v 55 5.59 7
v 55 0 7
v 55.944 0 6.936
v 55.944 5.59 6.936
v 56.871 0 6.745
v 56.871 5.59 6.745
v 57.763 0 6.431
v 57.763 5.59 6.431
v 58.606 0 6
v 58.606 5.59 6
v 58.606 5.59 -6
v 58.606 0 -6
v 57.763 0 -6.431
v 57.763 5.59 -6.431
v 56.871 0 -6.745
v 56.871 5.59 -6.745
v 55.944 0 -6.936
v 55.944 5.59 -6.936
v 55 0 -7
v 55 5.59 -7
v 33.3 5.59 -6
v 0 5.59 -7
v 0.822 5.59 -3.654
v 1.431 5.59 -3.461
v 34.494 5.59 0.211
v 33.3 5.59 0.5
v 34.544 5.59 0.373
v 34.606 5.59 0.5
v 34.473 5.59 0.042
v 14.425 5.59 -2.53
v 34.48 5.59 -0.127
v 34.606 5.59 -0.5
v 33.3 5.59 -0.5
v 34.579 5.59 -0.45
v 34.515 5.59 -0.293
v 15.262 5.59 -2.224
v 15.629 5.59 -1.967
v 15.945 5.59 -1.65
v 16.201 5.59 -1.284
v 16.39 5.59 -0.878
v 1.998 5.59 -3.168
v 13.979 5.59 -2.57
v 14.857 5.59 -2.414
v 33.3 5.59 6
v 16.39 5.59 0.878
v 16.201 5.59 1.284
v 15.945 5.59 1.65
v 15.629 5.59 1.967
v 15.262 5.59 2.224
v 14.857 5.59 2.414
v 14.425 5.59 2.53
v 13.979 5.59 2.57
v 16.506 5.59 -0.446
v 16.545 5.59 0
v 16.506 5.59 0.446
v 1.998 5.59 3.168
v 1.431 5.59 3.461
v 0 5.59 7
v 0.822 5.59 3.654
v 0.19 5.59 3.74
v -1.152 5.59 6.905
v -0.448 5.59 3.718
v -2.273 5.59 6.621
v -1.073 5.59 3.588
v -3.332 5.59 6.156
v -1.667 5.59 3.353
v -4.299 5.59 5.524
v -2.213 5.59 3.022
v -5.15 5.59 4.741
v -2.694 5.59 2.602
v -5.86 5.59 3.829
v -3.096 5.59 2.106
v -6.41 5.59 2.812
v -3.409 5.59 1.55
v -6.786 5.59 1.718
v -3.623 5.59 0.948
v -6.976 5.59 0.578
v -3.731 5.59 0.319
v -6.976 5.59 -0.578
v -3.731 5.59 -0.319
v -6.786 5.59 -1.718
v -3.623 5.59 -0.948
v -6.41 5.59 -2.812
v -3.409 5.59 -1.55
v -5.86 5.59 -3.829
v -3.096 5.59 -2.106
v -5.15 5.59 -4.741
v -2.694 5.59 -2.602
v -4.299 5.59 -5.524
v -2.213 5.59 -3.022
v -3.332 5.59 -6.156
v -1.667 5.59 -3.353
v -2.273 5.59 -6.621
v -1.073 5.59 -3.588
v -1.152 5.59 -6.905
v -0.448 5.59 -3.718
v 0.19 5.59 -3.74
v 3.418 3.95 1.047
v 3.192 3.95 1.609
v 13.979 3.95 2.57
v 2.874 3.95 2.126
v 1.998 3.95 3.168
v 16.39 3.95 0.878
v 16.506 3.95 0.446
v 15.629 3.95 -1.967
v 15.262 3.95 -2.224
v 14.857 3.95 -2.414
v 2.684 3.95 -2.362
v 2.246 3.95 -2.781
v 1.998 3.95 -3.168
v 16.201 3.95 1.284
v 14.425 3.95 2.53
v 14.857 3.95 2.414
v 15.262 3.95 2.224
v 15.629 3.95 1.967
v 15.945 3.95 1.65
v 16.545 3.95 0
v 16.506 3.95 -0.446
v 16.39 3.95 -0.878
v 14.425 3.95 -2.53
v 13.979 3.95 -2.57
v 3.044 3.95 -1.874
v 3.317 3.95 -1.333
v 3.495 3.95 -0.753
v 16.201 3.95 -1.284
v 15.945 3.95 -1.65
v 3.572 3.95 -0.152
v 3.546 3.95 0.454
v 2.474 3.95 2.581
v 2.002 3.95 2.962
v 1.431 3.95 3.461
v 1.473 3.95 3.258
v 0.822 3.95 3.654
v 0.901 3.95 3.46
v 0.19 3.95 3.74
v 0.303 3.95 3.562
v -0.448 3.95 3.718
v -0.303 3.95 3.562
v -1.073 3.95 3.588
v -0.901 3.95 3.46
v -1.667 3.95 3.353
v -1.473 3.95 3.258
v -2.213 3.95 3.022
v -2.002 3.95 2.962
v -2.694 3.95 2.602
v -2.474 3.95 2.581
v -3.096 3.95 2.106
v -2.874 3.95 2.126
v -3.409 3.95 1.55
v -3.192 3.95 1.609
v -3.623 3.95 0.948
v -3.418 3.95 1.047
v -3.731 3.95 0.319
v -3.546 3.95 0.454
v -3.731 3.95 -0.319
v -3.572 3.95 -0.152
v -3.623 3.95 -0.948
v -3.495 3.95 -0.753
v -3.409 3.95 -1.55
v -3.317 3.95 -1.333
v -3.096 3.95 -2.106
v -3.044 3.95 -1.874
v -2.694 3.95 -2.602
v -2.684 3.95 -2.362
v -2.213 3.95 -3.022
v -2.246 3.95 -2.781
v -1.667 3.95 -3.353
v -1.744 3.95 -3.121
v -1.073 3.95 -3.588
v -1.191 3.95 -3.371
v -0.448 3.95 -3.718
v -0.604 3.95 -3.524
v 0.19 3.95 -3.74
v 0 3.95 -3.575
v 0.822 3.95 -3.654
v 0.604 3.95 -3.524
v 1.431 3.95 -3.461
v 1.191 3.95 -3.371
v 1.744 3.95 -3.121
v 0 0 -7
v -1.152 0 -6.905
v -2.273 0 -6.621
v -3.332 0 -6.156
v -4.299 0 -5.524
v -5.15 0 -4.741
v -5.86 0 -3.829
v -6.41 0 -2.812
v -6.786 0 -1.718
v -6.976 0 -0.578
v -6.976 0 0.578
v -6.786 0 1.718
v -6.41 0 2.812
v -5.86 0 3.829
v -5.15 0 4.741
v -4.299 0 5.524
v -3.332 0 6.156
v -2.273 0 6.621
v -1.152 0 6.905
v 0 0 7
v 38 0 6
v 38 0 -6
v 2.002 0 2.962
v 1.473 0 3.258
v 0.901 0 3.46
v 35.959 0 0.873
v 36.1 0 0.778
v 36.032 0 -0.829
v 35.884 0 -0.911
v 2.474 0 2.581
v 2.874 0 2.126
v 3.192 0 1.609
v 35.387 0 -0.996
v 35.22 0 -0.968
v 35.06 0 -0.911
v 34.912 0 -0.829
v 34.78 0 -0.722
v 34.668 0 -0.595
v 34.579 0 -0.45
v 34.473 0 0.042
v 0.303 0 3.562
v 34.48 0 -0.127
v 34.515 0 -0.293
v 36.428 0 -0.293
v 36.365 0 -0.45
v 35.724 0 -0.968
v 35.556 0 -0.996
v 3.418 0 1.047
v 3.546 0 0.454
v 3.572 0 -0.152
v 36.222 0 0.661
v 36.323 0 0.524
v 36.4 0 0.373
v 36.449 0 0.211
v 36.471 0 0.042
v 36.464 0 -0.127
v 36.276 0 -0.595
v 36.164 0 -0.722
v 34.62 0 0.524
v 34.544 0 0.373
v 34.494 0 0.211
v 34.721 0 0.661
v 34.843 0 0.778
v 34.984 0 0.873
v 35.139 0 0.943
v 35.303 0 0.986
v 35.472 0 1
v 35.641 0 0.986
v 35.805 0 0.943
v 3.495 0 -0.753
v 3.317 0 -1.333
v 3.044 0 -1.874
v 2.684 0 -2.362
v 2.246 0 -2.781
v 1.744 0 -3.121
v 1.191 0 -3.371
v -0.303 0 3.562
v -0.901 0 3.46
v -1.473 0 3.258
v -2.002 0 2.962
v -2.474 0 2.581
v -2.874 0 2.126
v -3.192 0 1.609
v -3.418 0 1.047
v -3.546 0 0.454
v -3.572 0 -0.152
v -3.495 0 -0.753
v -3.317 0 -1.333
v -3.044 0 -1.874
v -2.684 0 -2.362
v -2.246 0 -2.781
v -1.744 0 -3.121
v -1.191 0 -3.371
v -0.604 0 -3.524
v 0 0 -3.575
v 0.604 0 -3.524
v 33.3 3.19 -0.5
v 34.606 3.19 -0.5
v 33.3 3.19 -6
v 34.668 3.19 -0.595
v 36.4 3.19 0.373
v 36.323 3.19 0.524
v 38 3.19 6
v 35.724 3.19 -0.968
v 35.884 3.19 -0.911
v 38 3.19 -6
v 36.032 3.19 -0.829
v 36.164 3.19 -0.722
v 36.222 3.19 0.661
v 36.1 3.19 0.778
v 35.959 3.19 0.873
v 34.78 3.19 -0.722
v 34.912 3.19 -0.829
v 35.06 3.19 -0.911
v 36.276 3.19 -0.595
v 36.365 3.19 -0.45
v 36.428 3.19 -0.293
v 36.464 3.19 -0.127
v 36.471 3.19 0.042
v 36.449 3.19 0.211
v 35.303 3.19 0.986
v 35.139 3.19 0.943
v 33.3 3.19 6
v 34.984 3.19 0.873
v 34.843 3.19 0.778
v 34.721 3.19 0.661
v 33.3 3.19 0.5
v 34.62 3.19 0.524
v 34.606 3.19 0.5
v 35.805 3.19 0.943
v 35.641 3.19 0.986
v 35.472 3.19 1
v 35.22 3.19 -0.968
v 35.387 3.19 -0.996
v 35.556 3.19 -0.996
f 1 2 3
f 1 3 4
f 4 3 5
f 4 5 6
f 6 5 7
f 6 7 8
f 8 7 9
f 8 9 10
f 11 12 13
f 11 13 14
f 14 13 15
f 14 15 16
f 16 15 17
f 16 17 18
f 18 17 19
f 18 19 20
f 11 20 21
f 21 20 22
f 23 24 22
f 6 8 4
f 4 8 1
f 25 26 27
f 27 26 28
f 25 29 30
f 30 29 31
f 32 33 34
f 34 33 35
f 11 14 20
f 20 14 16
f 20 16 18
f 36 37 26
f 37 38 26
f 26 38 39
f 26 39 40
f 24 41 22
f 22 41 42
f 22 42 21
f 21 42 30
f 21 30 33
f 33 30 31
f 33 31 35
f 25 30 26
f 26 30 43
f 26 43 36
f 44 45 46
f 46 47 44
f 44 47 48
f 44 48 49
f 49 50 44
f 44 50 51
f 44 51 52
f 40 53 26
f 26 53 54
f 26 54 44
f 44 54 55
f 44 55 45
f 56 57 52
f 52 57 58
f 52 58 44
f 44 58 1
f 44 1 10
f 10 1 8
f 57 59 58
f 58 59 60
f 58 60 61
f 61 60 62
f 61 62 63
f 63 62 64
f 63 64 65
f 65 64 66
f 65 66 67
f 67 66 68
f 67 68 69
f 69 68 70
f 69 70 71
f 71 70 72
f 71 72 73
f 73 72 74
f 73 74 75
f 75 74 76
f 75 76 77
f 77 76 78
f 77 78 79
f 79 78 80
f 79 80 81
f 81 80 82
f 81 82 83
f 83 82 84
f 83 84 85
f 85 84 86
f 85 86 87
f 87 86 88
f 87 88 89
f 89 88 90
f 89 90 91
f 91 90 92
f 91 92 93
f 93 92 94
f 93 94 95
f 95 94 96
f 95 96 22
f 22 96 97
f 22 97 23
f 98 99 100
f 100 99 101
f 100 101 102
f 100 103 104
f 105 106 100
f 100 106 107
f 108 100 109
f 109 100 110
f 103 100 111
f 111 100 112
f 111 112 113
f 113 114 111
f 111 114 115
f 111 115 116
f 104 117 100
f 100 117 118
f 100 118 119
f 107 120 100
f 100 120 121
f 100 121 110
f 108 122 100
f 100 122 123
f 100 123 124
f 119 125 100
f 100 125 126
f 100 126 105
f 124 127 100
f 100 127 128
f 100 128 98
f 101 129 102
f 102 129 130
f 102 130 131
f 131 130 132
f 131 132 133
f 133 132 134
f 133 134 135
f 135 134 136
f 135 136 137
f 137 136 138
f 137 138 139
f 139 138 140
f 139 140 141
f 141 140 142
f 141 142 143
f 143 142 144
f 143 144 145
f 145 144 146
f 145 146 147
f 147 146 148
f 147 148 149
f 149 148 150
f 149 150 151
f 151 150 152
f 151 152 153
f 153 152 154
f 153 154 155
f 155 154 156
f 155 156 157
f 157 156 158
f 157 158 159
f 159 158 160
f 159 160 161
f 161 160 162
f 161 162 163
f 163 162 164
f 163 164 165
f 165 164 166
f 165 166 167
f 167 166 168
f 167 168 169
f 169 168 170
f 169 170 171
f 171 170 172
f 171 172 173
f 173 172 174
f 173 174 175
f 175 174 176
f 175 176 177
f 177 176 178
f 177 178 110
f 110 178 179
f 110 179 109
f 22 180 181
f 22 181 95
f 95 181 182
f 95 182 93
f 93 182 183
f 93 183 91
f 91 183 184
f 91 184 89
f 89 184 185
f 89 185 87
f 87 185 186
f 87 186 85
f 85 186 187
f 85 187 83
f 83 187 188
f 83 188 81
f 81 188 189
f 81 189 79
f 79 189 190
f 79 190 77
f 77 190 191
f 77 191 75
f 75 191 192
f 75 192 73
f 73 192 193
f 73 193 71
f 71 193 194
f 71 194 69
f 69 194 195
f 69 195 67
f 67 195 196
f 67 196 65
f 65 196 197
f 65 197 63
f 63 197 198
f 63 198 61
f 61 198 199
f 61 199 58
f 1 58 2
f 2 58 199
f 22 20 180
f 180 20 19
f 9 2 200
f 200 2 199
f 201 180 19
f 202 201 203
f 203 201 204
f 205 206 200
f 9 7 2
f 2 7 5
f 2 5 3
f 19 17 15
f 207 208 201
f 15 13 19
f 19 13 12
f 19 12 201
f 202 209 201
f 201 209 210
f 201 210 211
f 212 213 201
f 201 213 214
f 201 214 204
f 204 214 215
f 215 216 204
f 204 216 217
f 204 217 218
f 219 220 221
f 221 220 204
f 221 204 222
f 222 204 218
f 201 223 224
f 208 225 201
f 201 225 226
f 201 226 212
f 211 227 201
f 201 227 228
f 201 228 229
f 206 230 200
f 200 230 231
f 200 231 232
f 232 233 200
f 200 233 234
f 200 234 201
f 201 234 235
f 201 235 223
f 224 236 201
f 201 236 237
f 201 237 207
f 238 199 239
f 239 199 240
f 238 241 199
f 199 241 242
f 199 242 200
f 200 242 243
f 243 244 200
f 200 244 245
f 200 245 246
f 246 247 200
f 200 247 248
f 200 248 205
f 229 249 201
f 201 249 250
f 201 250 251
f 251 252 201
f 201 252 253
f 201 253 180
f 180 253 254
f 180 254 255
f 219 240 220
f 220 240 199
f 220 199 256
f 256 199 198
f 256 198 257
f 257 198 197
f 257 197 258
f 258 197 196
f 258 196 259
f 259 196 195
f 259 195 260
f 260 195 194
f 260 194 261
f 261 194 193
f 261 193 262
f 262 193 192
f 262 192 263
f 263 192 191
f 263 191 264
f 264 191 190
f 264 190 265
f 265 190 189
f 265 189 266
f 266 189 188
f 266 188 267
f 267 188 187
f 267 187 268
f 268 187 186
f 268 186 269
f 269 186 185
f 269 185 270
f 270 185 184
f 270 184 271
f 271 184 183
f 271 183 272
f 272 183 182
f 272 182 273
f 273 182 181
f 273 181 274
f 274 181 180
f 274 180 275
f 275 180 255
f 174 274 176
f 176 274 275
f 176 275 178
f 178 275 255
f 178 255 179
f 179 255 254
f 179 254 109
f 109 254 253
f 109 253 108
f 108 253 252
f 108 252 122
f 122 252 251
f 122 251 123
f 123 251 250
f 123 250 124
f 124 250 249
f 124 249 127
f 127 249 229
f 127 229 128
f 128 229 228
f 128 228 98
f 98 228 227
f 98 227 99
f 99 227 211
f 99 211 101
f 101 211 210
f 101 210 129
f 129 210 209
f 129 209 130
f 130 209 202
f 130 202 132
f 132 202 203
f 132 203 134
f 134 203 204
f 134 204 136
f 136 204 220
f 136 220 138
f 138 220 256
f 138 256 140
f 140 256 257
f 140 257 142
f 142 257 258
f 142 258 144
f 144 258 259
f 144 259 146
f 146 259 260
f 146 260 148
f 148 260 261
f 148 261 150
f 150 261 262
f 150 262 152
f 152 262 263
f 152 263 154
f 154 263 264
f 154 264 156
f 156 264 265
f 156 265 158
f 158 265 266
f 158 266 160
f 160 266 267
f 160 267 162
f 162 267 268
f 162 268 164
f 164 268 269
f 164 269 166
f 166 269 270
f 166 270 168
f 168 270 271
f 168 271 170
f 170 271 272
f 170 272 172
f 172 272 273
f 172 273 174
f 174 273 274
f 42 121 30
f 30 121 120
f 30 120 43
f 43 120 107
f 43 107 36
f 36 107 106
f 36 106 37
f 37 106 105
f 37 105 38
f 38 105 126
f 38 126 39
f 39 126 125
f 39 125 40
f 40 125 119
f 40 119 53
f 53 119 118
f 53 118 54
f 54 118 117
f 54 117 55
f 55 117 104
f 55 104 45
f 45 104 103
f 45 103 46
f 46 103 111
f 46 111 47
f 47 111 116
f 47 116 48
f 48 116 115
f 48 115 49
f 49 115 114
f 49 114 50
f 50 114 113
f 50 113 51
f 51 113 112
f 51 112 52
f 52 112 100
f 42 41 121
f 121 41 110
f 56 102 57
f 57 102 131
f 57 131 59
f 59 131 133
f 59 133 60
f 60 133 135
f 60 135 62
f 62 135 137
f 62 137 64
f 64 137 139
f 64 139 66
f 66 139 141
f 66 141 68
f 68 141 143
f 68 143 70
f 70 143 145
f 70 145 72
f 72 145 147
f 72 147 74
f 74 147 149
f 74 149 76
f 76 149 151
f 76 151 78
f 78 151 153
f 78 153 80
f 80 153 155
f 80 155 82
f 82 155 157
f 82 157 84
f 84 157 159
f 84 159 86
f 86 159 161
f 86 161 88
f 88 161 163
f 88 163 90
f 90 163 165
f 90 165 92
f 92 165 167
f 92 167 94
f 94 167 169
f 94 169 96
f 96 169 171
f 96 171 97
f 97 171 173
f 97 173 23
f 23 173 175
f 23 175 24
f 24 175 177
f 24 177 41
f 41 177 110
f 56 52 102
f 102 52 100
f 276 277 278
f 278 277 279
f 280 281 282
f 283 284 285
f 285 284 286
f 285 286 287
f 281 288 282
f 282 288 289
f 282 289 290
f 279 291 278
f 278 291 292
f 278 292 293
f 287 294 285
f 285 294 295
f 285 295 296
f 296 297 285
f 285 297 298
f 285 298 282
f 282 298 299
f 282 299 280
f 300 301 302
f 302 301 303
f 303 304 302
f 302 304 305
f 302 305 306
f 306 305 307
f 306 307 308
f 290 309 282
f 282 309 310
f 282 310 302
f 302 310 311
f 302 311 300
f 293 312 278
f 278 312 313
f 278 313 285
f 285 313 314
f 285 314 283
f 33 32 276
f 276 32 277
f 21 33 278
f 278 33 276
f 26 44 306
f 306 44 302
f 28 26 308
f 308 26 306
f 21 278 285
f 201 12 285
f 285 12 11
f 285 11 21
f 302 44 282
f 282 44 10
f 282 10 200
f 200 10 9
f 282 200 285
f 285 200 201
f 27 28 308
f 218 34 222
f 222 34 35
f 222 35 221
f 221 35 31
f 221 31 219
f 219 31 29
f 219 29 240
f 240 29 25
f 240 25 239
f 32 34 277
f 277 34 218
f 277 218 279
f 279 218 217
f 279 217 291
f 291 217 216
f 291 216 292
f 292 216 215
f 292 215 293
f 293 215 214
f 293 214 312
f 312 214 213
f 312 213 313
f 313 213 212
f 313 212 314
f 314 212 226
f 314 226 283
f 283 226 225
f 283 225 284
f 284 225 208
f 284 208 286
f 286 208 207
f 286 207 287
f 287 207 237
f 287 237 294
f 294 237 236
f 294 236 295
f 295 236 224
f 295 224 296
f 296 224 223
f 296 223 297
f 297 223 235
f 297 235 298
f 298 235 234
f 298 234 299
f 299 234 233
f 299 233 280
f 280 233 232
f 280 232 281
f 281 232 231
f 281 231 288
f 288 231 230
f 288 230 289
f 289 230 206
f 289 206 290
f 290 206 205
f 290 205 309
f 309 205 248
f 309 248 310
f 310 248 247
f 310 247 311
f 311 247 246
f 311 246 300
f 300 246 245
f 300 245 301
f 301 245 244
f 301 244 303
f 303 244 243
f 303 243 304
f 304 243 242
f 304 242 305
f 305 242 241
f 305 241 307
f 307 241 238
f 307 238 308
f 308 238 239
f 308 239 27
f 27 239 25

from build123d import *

# Parameters (mm, degrees)
BOSS_EXTRUDE1_DEPTH = 3.95
SKETCH2_R           = 3.575
CUT_EXTRUDE1_DEPTH  = 3.95
BOSS_EXTRUDE2_DEPTH = 1.64
SKETCH4_R           = 3.25
CUT_EXTRUDE2_DEPTH  = 63.643819328
CAVITY1_OUTLINE_R   = 3.25
CAVITY1_DEPTH       = 5.59
CAVITY1_START       = 3.19
CAVITY1_2_DEPTH     = 2.4
CUT_EXTRUDE4_DEPTH  = 63.643819328
CUT_EXTRUDE5_START  = -10
SKETCH6_R           = 1
CUT_EXTRUDE5_DEPTH  = 10


# Read off the part's stored shape, not the designer's step: Cavity1
with BuildPart() as part:
    # Sketch1 → Boss-Extrude1 (new body)
    with BuildSketch(Plane(origin=(0, 0, 0), x_dir=(1, 0, 0), z_dir=(0, 1, 0))):
        with BuildLine():
            Line((0, 7), (55, 7))
            ThreePointArc((55, 7), (62, 0), (55, -7))
            Line((55, -7), (0, -7))
            ThreePointArc((0, -7), (-7, 0), (0, 7))
        make_face()
    extrude(amount=BOSS_EXTRUDE1_DEPTH)

    # Sketch2 → Cut-Extrude1 (cut)
    with BuildSketch(Plane.XZ):
        with Locations(Location((0, 0, 0), (0, 0, 270))):
            Circle(SKETCH2_R)
    extrude(amount=-CUT_EXTRUDE1_DEPTH, mode=Mode.SUBTRACT)

    # Sketch3 → Boss-Extrude2 (add)
    with BuildSketch(Plane(origin=(0, 3.95, 0), x_dir=(1, 0, 0), z_dir=(0, 1, 0))):
        with BuildLine():
            Line((0, -7), (55, -7))
            ThreePointArc((55, -7), (62, 0), (55, 7))
            Line((55, 7), (0, 7))
            ThreePointArc((0, 7), (-7, 0), (0, -7))
        make_face()
        with BuildLine():
            Line((13.979308982, 2.569996388), (1.997926282, 3.167540934))
            ThreePointArc((1.997926282, 3.167540934), (-3.745, 0), (1.997926282, -3.167540934))
            Line((1.997926282, -3.167540934), (13.979308982, -2.569996388))
            ThreePointArc((13.979308982, -2.569996388), (16.545, 0), (13.979308982, 2.569996388))
        make_face(mode=Mode.SUBTRACT)
    extrude(amount=BOSS_EXTRUDE2_DEPTH)

    # Sketch4 → Cut-Extrude2 (cut, through all)
    with BuildSketch(Plane(origin=(0, 5.59, 0), x_dir=(1, 0, 0), z_dir=(0, 1, 0))):
        with Locations(Location((55, 0, 0), (0, 0, 270))):
            Circle(SKETCH4_R)
    extrude(amount=-CUT_EXTRUDE2_DEPTH, mode=Mode.SUBTRACT)

    # Cavity1 outline → Cavity1 (cut)
    with BuildSketch(Plane(origin=(0, 0, 0), x_dir=(1, 0, 0), z_dir=(0, 1, 0))):
        with BuildLine():
            Line((58.605551275, 6), (38, 6))
            Line((38, 6), (38, -6))
            Line((38, -6), (58.605551275, -6))
            ThreePointArc((58.605551275, -6), (59.949747468, -4.949747468), (61, -3.605551275))
            Line((61, -3.605551275), (61, 3.605551275))
            ThreePointArc((61, 3.605551275), (59.949747468, 4.949747468), (58.605551275, 6))
        make_face()
        with Locations((55, 0)):
            Circle(CAVITY1_OUTLINE_R, mode=Mode.SUBTRACT)
    extrude(amount=CAVITY1_DEPTH, mode=Mode.SUBTRACT)

    # Cavity1 2 outline → Cavity1 2 (cut)
    with BuildSketch(Plane(origin=(0, 0, 0), x_dir=(1, 0, 0), z_dir=(0, 1, 0)).offset(CAVITY1_START)):
        with BuildLine():
            Line((33.3, 0.5), (34.605619966, 0.5))
            ThreePointArc((34.605619966, 0.5), (36.47164537, 0), (34.605619966, -0.5))
            Line((34.605619966, -0.5), (33.3, -0.5))
            Line((33.3, -0.5), (33.3, -6))
            Line((33.3, -6), (38, -6))
            Line((38, -6), (38, 6))
            Line((38, 6), (33.3, 6))
            Line((33.3, 6), (33.3, 0.5))
        make_face()
        with BuildLine():
            ThreePointArc((61, -3.605551275), (62, 0), (61, 3.605551275))
            Line((61, 3.605551275), (61, -3.605551275))
        make_face()
    extrude(amount=CAVITY1_2_DEPTH, mode=Mode.SUBTRACT)

    # Sketch5 → Cut-Extrude4 (cut, through all)
    with BuildSketch(Plane.XZ):
        with BuildLine():
            Line((61, 3.605551275), (61, -3.605551275))
            ThreePointArc((61, -3.605551275), (62, 0), (61, 3.605551275))
        make_face()
    extrude(amount=-CUT_EXTRUDE4_DEPTH, mode=Mode.SUBTRACT)

    # Sketch6 → Cut-Extrude5 (cut)
    with BuildSketch(Plane(origin=(0, 5.59, 0), x_dir=(1, 0, 0), z_dir=(0, 1, 0)).offset(CUT_EXTRUDE5_START)):
        with Locations(Location((35.47164537, 0, 0), (0, 0, 270))):
            Circle(SKETCH6_R)
    extrude(amount=CUT_EXTRUDE5_DEPTH, mode=Mode.SUBTRACT)


solid = part.part
